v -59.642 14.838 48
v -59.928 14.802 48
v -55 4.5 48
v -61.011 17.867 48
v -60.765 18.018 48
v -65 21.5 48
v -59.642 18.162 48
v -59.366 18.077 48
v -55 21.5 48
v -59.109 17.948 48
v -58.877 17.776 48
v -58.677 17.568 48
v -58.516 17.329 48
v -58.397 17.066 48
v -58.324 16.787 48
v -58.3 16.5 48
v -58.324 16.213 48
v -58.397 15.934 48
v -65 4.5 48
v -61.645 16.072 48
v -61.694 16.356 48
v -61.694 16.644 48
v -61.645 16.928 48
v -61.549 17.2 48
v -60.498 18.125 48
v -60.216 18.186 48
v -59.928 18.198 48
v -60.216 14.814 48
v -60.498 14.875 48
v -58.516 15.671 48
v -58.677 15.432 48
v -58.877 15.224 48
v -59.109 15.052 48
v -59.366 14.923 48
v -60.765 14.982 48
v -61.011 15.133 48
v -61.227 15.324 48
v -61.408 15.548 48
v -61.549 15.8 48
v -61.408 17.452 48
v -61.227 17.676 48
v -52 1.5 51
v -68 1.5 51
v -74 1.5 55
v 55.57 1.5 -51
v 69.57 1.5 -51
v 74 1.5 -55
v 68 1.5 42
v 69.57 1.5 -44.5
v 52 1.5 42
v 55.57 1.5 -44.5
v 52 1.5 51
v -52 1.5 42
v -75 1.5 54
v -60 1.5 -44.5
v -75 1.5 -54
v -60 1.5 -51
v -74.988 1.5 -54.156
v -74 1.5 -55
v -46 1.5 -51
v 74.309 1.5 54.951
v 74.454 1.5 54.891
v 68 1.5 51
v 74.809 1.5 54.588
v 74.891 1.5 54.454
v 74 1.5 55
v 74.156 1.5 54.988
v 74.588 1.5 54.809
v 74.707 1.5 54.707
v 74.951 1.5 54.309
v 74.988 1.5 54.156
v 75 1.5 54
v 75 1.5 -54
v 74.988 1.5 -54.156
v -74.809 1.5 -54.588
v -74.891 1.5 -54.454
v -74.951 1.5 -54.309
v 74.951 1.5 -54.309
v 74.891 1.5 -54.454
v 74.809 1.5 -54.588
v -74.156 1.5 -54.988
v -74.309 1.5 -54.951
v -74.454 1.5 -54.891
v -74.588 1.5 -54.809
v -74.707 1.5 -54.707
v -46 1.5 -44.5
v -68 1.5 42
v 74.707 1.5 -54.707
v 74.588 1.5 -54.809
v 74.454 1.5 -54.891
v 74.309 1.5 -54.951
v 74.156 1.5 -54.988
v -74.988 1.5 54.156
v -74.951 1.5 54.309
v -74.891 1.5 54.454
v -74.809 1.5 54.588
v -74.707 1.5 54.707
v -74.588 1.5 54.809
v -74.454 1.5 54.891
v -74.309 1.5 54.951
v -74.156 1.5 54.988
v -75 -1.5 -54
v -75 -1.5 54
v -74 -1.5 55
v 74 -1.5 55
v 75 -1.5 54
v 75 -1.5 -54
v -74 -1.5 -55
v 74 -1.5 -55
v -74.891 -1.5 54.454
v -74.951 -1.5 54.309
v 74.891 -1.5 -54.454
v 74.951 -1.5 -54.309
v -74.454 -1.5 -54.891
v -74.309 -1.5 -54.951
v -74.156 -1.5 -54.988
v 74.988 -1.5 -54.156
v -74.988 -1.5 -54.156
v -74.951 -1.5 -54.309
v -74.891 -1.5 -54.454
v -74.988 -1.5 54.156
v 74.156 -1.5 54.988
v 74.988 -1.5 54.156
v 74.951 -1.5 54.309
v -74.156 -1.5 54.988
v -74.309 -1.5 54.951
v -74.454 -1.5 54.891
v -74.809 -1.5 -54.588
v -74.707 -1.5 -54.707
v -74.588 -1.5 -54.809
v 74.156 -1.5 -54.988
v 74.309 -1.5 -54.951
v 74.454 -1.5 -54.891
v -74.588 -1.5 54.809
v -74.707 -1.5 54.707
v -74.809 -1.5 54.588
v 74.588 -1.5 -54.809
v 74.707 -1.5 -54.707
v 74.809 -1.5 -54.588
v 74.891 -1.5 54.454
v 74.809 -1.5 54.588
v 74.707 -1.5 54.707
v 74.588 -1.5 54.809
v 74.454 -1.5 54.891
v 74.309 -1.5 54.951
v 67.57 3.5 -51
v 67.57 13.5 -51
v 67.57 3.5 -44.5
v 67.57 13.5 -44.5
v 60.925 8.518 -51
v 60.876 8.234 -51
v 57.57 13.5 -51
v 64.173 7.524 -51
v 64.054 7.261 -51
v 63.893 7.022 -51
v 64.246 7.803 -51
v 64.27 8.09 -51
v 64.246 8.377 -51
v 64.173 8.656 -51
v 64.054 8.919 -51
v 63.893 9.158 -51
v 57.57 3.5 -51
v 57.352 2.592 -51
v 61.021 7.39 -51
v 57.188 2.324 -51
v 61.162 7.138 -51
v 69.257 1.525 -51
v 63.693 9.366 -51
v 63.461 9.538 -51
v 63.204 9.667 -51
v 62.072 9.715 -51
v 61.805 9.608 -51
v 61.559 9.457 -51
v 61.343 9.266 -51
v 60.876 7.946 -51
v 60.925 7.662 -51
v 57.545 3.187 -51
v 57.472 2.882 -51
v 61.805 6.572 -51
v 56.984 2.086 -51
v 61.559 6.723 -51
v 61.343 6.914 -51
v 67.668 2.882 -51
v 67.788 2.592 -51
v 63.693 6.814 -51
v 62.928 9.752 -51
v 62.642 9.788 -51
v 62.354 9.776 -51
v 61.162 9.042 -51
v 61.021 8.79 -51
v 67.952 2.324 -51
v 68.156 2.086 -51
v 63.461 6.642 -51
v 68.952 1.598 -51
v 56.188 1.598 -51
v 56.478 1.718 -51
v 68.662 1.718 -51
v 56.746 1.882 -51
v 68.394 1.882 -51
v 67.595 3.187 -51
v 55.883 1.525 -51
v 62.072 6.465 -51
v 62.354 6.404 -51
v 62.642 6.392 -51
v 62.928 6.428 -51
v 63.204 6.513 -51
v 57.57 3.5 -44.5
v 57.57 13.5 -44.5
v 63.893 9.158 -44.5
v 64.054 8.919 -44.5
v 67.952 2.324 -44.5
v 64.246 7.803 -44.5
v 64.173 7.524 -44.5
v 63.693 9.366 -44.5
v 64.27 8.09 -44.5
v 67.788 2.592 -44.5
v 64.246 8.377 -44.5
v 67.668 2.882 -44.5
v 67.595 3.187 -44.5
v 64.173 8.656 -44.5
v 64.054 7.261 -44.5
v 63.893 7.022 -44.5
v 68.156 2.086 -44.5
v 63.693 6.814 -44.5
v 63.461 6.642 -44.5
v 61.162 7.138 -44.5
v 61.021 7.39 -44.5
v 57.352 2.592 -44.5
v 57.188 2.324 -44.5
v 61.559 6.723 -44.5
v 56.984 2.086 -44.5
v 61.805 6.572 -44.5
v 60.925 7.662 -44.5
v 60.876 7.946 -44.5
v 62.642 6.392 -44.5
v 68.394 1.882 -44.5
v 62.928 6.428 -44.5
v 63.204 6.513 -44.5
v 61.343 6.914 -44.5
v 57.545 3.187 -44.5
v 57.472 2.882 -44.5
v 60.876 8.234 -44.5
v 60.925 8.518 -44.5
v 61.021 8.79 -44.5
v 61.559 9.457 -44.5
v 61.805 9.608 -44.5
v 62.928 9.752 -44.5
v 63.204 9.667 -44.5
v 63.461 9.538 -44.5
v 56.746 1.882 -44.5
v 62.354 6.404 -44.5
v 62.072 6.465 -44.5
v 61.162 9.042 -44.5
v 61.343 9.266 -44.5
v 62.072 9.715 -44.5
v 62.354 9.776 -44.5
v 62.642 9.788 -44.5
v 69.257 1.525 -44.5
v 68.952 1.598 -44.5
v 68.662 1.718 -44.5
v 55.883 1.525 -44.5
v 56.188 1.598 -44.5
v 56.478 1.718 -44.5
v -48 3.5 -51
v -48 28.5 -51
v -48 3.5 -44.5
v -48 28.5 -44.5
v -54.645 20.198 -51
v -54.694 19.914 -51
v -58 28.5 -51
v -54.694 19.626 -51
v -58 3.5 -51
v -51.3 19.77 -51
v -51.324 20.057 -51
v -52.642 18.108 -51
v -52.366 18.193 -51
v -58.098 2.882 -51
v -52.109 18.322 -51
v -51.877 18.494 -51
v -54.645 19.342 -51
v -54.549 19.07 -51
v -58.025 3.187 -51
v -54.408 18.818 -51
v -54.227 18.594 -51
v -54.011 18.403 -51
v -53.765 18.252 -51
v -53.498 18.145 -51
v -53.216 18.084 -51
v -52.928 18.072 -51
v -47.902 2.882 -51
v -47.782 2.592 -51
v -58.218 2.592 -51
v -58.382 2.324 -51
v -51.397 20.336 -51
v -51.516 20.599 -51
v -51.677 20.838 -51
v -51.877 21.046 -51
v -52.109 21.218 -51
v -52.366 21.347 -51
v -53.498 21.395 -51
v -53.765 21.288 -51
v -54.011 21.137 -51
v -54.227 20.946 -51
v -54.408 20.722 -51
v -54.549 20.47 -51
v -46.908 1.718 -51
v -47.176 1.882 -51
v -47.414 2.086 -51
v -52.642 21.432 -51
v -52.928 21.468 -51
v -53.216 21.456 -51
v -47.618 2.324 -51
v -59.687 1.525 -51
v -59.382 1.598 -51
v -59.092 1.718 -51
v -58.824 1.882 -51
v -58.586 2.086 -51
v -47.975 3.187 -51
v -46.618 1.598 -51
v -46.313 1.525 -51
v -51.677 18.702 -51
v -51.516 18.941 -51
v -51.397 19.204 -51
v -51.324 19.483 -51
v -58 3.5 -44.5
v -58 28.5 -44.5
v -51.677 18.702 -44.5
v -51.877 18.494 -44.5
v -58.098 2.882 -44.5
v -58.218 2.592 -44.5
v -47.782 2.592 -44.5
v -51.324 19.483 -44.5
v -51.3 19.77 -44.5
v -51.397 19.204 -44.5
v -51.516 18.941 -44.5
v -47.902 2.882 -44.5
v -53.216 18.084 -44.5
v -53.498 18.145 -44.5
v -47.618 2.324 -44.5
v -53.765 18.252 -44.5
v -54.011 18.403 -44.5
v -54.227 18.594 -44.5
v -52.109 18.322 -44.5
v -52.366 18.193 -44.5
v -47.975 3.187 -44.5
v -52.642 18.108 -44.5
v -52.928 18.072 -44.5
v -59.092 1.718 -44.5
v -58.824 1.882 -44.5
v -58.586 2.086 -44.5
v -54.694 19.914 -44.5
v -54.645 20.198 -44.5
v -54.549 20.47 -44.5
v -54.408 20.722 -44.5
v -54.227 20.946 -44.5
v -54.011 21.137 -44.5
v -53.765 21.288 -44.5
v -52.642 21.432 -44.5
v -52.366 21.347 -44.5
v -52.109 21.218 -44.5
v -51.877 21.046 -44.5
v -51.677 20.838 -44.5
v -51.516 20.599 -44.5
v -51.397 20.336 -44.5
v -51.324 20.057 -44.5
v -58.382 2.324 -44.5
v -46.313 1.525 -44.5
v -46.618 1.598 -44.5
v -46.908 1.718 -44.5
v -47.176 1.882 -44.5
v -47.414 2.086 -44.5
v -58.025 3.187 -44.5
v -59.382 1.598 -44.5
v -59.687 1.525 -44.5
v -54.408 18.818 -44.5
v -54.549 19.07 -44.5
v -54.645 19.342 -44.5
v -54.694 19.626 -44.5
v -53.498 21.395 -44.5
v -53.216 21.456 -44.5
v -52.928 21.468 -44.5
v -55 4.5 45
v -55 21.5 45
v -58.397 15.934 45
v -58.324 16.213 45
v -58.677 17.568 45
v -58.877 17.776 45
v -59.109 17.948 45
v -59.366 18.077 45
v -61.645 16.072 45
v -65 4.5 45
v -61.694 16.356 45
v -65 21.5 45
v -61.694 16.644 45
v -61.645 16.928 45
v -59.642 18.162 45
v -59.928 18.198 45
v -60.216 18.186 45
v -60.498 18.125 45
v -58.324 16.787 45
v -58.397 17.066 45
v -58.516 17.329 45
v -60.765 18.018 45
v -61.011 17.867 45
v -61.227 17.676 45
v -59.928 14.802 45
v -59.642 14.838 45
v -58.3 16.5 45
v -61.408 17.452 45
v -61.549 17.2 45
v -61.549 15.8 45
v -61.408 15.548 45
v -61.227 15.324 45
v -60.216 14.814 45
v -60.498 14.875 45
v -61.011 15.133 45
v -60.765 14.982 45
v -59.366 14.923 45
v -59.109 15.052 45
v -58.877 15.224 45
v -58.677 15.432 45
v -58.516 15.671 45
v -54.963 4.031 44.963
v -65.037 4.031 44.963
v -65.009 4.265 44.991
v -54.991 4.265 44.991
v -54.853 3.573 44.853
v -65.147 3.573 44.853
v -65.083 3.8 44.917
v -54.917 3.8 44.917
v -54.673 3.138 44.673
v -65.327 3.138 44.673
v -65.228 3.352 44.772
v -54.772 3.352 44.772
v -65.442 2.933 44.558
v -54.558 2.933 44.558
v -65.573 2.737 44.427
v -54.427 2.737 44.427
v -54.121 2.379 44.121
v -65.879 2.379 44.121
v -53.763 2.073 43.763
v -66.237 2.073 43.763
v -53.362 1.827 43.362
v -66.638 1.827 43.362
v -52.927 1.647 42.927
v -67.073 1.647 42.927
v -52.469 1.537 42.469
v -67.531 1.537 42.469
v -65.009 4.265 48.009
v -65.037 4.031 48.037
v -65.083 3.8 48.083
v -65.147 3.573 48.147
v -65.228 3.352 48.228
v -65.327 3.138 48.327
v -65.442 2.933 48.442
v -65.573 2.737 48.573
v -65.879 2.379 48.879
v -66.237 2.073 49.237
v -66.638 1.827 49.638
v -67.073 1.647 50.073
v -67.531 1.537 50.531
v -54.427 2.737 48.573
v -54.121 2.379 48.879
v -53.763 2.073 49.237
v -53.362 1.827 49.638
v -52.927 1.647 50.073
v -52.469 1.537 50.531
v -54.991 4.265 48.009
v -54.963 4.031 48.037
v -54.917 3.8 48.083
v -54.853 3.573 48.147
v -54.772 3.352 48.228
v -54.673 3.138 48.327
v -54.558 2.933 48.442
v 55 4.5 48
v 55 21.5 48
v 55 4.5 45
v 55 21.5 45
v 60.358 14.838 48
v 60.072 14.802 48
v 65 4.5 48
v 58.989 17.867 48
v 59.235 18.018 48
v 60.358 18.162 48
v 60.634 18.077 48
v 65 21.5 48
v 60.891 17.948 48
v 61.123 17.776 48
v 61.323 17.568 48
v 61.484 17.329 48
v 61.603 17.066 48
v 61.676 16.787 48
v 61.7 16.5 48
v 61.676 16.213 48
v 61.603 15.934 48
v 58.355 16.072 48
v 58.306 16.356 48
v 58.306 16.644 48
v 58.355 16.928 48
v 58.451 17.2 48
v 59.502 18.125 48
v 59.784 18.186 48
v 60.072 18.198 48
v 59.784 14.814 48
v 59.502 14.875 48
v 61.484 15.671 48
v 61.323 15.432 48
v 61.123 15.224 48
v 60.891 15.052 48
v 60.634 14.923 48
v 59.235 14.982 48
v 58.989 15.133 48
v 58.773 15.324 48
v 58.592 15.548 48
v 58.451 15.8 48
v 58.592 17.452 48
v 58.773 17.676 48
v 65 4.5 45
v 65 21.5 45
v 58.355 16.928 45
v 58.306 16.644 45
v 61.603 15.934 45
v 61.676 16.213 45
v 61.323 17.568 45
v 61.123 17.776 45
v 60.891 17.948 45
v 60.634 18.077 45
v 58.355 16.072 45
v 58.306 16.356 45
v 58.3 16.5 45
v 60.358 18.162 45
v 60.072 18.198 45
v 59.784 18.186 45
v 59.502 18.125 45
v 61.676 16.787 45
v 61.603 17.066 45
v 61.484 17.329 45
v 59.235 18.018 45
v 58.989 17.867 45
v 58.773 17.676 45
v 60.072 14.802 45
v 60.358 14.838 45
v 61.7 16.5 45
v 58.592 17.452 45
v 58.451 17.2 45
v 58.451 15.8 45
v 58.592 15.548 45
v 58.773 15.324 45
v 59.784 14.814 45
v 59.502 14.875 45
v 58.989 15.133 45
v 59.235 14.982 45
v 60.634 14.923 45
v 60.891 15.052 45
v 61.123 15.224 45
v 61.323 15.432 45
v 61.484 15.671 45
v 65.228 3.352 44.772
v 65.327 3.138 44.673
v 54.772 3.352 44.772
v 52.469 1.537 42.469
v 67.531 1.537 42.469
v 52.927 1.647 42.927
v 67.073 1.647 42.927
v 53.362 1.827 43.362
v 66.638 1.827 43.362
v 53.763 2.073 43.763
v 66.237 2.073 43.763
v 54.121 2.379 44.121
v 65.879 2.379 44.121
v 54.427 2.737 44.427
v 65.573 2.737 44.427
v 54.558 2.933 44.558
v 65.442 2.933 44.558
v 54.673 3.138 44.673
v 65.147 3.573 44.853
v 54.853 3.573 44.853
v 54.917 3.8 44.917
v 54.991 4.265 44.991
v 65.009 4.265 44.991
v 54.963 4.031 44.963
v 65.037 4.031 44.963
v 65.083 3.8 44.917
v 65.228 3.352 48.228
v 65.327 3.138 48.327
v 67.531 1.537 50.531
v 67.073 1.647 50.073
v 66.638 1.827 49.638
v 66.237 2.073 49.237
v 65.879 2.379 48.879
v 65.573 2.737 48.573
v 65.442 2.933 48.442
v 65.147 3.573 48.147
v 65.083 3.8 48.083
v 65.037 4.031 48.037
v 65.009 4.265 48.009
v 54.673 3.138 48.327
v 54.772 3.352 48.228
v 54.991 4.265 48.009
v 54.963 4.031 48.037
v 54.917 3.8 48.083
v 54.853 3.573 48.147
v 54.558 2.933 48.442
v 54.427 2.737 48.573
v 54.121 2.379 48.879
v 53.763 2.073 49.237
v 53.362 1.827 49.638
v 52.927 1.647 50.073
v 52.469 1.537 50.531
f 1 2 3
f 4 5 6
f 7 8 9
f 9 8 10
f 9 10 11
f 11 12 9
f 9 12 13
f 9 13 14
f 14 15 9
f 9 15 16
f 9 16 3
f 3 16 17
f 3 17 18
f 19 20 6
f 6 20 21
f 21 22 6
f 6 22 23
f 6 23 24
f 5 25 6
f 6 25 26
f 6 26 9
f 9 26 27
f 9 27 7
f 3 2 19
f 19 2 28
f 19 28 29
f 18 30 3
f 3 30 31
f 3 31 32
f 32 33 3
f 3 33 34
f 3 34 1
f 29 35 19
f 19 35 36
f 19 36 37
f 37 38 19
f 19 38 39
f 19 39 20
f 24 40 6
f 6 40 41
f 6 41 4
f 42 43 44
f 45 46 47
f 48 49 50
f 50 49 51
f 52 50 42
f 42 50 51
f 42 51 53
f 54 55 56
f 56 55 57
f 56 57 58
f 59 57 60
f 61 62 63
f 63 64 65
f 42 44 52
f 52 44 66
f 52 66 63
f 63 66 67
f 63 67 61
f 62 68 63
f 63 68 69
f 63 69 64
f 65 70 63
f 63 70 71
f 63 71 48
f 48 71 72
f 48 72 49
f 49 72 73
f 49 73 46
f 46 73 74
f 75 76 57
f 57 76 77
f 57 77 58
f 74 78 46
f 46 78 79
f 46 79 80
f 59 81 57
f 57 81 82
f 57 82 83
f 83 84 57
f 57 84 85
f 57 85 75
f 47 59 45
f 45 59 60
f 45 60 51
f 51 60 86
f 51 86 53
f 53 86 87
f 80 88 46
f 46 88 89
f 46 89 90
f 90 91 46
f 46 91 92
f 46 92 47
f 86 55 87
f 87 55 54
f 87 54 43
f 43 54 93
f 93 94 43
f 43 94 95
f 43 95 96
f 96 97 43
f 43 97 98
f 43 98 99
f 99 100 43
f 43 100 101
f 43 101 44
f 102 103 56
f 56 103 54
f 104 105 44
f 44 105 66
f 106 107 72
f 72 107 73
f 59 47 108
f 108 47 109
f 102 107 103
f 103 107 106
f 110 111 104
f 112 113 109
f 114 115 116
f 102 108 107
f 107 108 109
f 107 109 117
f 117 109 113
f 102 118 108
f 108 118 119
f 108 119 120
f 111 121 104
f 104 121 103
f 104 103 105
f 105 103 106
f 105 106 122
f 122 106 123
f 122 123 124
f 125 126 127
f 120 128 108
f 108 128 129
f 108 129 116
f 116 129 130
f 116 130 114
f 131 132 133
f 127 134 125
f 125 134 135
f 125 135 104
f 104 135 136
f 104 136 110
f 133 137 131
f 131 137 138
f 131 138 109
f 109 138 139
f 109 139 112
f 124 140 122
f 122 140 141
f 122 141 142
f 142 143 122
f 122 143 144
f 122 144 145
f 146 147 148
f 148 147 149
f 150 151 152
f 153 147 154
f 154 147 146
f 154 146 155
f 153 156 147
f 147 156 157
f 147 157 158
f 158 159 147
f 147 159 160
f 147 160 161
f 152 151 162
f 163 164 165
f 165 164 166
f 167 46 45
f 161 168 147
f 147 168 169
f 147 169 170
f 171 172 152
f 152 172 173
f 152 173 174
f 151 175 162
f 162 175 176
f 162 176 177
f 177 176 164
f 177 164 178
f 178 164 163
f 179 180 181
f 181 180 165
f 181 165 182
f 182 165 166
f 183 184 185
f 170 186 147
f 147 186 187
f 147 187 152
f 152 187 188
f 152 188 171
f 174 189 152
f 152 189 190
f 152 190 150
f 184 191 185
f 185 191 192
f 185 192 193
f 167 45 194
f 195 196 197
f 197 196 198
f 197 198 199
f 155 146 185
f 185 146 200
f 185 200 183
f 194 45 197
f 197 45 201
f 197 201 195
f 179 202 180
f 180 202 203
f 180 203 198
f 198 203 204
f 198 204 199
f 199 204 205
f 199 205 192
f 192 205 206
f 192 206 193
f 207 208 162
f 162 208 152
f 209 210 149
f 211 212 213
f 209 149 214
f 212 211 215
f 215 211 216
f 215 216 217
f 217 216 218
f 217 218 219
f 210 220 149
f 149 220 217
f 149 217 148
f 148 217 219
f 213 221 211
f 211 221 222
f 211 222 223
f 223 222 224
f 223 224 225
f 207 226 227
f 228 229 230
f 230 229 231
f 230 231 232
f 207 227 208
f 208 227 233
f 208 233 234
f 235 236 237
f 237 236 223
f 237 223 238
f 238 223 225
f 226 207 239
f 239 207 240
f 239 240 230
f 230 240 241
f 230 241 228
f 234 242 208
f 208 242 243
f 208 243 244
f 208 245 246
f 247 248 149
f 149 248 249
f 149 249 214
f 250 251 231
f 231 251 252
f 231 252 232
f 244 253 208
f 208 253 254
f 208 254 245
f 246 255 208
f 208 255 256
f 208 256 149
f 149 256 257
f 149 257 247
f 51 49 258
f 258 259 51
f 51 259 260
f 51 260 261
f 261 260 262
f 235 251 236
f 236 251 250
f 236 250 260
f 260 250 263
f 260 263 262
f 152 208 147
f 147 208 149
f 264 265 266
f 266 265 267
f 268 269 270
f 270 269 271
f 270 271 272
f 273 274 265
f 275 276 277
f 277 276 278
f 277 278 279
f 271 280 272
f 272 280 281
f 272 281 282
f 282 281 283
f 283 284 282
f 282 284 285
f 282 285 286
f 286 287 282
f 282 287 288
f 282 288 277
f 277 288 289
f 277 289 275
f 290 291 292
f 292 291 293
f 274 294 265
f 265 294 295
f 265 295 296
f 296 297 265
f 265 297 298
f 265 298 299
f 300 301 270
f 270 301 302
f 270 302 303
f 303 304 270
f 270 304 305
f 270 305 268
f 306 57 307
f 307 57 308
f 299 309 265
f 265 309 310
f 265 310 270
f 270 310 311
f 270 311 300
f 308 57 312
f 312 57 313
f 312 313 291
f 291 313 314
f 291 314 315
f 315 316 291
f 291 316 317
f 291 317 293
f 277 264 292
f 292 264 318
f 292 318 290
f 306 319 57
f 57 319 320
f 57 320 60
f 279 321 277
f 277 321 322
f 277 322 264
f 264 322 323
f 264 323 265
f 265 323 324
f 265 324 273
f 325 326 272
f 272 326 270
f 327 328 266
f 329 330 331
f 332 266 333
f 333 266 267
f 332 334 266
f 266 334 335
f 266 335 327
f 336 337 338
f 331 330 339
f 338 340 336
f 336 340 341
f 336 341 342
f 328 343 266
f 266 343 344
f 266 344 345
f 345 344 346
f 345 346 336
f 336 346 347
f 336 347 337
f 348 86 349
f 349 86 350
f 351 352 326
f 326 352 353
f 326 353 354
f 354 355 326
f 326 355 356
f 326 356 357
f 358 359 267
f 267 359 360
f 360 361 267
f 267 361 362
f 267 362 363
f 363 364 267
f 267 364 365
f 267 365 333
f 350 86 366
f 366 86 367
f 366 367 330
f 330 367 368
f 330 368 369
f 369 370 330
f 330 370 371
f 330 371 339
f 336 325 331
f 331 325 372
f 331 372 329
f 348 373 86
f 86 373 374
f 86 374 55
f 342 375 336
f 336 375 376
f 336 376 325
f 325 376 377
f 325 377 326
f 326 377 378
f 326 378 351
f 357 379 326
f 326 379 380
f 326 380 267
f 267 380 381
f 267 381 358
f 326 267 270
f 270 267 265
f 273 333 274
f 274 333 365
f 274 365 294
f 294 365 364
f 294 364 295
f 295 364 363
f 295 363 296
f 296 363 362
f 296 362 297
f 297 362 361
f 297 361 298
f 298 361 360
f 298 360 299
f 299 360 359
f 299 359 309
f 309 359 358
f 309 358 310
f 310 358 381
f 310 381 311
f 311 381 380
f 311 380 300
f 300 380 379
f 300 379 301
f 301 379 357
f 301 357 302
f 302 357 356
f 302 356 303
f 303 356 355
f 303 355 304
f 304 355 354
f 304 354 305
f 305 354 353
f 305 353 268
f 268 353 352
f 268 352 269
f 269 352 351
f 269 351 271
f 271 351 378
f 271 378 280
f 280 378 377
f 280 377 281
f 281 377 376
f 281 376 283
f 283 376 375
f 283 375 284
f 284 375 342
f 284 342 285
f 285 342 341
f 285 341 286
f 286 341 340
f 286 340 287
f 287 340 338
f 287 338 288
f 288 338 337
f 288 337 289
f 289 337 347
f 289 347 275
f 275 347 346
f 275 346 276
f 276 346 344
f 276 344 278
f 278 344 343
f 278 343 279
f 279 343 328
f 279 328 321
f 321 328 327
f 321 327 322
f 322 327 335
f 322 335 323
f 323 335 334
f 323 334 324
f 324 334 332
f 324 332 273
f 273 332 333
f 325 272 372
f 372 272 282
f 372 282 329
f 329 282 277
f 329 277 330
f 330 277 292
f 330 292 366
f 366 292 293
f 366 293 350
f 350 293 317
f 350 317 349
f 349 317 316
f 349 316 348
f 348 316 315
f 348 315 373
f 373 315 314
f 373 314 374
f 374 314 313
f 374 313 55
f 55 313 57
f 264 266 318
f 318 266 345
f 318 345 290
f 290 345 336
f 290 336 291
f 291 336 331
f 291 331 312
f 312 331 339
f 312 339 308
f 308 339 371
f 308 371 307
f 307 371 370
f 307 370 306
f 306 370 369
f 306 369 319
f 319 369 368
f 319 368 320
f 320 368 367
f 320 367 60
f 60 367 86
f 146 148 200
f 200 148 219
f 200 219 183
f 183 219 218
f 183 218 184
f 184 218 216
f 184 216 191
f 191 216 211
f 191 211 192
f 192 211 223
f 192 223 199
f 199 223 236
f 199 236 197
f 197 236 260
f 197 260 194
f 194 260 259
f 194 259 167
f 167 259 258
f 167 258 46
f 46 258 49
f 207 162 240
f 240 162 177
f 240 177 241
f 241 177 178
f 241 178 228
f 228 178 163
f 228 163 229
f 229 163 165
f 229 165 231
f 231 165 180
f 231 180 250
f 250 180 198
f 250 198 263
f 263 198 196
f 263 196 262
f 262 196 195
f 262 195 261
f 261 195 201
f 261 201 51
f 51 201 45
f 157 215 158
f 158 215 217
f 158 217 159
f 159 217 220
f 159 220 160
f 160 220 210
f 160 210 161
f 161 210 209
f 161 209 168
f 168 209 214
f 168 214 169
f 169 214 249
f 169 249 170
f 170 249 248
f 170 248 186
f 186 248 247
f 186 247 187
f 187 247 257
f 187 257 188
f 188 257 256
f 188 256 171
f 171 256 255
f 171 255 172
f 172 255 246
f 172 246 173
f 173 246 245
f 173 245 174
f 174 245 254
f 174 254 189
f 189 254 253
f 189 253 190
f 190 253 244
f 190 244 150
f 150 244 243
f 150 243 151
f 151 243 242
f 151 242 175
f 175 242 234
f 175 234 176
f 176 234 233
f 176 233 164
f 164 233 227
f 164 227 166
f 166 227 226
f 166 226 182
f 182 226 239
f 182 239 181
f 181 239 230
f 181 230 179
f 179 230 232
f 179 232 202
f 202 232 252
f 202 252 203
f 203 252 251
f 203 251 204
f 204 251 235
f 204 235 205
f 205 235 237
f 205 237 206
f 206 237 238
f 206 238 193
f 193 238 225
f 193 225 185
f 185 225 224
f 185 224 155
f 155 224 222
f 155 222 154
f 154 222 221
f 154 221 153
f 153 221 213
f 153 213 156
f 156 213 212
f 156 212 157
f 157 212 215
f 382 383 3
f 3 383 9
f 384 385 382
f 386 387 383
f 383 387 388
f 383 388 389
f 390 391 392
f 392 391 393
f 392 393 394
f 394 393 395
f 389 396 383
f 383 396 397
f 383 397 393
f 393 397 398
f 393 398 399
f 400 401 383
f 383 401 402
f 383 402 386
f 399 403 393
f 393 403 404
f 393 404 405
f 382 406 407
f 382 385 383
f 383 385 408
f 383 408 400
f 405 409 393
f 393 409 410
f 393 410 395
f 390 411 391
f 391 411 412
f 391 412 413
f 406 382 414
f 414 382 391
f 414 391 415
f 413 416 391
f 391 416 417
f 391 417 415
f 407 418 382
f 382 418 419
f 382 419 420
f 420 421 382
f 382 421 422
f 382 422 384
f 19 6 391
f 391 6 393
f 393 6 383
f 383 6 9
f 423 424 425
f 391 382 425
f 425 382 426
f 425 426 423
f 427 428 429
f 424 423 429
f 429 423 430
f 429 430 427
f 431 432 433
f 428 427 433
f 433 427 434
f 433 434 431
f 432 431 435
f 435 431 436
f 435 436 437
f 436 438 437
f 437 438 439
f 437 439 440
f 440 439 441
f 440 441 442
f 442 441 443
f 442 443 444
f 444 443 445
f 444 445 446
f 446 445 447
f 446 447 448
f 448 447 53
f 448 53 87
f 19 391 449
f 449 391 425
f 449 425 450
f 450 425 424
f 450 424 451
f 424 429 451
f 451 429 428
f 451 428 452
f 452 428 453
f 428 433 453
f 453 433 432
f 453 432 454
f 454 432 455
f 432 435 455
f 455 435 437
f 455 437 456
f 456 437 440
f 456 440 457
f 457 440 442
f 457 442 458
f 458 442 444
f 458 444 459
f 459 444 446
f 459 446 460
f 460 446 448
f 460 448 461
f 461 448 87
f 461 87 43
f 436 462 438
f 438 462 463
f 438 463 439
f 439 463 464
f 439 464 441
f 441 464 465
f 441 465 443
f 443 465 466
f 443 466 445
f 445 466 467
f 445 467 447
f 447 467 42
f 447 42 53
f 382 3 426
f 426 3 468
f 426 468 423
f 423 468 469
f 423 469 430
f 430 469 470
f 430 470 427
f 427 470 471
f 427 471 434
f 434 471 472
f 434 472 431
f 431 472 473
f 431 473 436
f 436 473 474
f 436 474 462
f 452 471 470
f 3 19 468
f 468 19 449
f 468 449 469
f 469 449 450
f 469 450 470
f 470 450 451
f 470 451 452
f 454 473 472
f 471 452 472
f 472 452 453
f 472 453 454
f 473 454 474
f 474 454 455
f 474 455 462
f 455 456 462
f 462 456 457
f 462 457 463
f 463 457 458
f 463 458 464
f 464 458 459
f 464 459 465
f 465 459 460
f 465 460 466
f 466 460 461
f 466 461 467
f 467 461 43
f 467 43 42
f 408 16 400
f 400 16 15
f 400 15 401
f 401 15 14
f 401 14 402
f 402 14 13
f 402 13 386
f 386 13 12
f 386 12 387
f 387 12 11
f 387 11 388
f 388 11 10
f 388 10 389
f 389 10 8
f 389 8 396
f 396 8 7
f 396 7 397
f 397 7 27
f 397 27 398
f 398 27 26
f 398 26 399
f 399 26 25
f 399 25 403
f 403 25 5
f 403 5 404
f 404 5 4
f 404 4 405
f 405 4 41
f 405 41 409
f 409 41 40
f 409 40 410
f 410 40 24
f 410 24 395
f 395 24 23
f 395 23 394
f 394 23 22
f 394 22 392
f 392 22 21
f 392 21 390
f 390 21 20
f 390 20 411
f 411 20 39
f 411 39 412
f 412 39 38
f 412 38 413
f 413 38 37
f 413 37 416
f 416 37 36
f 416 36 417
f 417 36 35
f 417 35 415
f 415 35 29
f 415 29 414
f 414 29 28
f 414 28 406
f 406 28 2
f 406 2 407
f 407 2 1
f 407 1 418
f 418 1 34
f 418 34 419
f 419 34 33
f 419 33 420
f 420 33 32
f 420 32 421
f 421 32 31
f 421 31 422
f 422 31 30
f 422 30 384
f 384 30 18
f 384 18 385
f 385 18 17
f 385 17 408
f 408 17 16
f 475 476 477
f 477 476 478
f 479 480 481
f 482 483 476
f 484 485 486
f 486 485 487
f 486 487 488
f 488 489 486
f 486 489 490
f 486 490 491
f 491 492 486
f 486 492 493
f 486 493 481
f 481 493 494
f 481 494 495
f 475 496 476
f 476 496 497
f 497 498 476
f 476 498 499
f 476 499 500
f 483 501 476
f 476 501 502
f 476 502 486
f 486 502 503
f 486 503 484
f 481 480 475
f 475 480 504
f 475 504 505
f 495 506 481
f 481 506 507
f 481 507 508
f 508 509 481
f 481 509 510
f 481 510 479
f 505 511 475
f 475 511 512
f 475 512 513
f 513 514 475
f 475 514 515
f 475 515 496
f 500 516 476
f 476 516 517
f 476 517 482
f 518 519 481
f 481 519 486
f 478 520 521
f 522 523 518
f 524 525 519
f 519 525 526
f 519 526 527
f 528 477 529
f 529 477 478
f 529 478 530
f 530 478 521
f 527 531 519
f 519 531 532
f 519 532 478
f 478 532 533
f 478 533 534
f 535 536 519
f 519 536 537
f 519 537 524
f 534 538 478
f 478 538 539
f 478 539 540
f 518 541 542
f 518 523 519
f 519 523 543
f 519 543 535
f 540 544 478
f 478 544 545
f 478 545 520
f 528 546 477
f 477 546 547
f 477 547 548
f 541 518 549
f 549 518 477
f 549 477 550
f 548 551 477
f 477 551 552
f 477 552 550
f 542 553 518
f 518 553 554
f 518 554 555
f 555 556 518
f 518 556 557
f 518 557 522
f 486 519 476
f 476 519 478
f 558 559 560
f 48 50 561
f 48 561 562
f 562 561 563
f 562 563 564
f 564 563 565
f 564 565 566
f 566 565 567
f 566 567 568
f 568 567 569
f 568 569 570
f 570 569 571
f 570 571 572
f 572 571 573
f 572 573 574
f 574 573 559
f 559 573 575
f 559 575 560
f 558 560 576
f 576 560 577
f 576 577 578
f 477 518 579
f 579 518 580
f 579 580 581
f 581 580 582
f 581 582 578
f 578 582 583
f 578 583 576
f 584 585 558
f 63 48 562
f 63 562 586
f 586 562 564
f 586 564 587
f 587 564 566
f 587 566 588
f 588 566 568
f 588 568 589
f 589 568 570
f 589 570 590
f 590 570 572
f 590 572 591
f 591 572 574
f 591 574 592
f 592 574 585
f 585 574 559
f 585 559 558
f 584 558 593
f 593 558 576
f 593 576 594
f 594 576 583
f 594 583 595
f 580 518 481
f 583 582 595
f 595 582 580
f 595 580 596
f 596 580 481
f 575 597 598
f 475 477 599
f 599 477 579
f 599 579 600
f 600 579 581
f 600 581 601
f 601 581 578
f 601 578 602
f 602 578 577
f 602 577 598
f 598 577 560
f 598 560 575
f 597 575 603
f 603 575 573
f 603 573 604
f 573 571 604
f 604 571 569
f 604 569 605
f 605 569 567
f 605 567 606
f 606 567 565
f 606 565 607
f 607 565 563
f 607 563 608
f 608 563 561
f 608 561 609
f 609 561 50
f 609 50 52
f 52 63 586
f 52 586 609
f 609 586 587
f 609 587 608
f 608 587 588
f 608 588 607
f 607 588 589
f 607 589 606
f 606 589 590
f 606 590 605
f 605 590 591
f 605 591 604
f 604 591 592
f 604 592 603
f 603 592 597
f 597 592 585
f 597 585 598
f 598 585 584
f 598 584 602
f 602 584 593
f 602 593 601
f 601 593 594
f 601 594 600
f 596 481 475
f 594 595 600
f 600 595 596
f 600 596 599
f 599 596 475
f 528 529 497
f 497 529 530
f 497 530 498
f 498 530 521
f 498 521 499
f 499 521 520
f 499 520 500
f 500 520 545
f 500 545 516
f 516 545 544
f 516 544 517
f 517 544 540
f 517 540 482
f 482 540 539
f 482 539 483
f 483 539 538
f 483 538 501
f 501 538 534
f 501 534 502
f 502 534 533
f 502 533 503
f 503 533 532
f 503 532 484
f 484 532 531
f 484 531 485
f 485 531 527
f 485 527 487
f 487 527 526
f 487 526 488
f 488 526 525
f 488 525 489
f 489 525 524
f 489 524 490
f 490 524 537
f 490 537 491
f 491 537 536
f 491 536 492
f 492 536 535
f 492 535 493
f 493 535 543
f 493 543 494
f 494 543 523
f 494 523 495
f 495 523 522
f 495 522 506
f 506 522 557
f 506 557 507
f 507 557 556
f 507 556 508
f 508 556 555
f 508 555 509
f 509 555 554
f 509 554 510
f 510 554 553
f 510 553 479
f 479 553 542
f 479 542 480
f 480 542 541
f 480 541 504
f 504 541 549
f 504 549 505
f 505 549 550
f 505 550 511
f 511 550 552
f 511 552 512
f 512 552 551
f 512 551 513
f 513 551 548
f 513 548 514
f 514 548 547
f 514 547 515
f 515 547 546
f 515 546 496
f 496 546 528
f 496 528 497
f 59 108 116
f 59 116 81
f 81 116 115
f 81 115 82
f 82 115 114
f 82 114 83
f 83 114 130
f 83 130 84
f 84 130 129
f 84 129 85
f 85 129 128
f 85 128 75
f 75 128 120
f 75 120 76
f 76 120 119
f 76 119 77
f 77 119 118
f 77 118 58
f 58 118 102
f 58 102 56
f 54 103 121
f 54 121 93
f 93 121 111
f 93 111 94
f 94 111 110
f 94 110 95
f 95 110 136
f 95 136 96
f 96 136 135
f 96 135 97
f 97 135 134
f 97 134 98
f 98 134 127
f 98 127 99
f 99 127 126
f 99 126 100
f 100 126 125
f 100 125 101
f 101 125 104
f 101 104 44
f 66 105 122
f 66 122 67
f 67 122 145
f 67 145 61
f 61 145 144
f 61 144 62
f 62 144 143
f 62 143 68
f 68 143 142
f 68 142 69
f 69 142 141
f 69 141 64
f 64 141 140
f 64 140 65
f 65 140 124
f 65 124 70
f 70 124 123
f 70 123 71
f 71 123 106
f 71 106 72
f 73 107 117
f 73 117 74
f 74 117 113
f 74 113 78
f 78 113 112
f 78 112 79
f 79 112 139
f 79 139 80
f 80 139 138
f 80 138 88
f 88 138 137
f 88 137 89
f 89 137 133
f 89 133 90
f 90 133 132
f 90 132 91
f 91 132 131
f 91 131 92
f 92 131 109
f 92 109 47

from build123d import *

# Parameters (mm, degrees)
SKETCH1_W            = 150
SKETCH1_H            = 110
BOSS_EXTRUDE1_DEPTH  = 1.5
SKETCH2_W            = 10
SKETCH2_H            = 6.5
BOSS_EXTRUDE2_DEPTH  = 12
SKETCH3_W            = 10
SKETCH3_H            = 6.5
BOSS_EXTRUDE3_DEPTH  = 15
M3_CLEARANCE_HOLE1_D = 3.4
FILLET1_R            = 2
M3_CLEARANCE_HOLE2_D = 3.4
SKETCH8_W            = 10
SKETCH8_H            = 3
BOSS_EXTRUDE4_DEPTH  = 20
FILLET2_R            = 3
M3_CLEARANCE_HOLE3_D = 3.4
FILLET2_OF_MIRROR1_R = 3
FILLET3_R            = 1


with BuildPart() as part:
    # Sketch1 → Boss-Extrude1 (new, symmetric)
    with BuildSketch(Plane(origin=(0, 0, 0), x_dir=(1, 0, 0), z_dir=(0, 1, 0))):
        Rectangle(SKETCH1_W, SKETCH1_H)
    extrude(amount=BOSS_EXTRUDE1_DEPTH, both=True)

    # Sketch2 → Boss-Extrude2 (add)
    with BuildSketch(Plane(origin=(0, 1.5, 0), x_dir=(1, 0, 0), z_dir=(0, 1, 0))):
        with Locations((62.57, 47.75)):
            Rectangle(SKETCH2_W, SKETCH2_H)
        with Locations((-53, 47.75)):
            Rectangle(SKETCH2_W, SKETCH2_H)
    extrude(amount=BOSS_EXTRUDE2_DEPTH)

    # Sketch3 → Boss-Extrude3 (add)
    with BuildSketch(Plane(origin=(0, 13.5, 0), x_dir=(1, 0, 0), z_dir=(0, 1, 0))):
        with Locations((-53, 47.75)):
            Rectangle(SKETCH3_W, SKETCH3_H)
    extrude(amount=BOSS_EXTRUDE3_DEPTH)

    # M3 Clearance Hole1 (through all)
    with Locations(Plane.XY.offset(-44.5)):
        with Locations((-53, 19.77)):
            Hole(M3_CLEARANCE_HOLE1_D / 2)

    # Fillet1
    fillet1_edges = [part.edges().sort_by_distance(p)[0] for p in [
        (67.57, 1.5, -47.75),
        (57.57, 1.5, -47.75),
        (-48, 1.5, -47.75),
        (-58, 1.5, -47.75),
    ]]
    fillet(fillet1_edges, radius=FILLET1_R)

    # M3 Clearance Hole2 (through all)
    with Locations(Plane.XY.offset(-44.5)):
        with Locations((62.57, 8.09)):
            Hole(M3_CLEARANCE_HOLE2_D / 2)

    # Sketch8 → Boss-Extrude4 (add)
    with BuildSketch(Plane(origin=(0, 1.5, 0), x_dir=(1, 0, 0), z_dir=(0, 1, 0))):
        with Locations((-60, -46.5)):
            Rectangle(SKETCH8_W, SKETCH8_H)
    boss_extrude4 = extrude(amount=BOSS_EXTRUDE4_DEPTH)

    # Fillet2
    fillet2_edges = [part.edges().sort_by_distance(p)[0] for p in [
        (-55, 1.5, 46.5),
        (-60, 1.5, 45),
        (-65, 1.5, 46.5),
        (-60, 1.5, 48),
    ]]
    fillet(fillet2_edges, radius=FILLET2_R)

    # M3 Clearance Hole3 (through all)
    with Locations(Plane.XY.offset(48)):
        with Locations((-60, 16.5)):
            m3_clearance_hole3 = Hole(M3_CLEARANCE_HOLE3_D / 2)

    # Mirror1: Boss-Extrude4, M3 Clearance Hole3 across plane
    add(boss_extrude4.mirror(Plane(origin=(0, 0, 0), x_dir=(0, 0, 1), z_dir=(1, 0, 0))))
    add(m3_clearance_hole3.mirror(Plane(origin=(0, 0, 0), x_dir=(0, 0, 1), z_dir=(1, 0, 0))), mode=Mode.SUBTRACT)

    # Fillet2 of Mirror1
    fillet2_of_mirror1_edges = [part.edges().sort_by_distance(p)[0] for p in [
        (55, 1.5, 46.5),
        (60, 1.5, 45),
        (65, 1.5, 46.5),
        (60, 1.5, 48),
    ]]
    fillet(fillet2_of_mirror1_edges, radius=FILLET2_OF_MIRROR1_R)

    # Fillet3
    fillet3_edges = [part.edges().sort_by_distance(p)[0] for p in [
        (-75, 0, -55),
        (75, 0, -55),
        (75, 0, 55),
        (-75, 0, 55),
    ]]
    fillet(fillet3_edges, radius=FILLET3_R)


solid = part.part
